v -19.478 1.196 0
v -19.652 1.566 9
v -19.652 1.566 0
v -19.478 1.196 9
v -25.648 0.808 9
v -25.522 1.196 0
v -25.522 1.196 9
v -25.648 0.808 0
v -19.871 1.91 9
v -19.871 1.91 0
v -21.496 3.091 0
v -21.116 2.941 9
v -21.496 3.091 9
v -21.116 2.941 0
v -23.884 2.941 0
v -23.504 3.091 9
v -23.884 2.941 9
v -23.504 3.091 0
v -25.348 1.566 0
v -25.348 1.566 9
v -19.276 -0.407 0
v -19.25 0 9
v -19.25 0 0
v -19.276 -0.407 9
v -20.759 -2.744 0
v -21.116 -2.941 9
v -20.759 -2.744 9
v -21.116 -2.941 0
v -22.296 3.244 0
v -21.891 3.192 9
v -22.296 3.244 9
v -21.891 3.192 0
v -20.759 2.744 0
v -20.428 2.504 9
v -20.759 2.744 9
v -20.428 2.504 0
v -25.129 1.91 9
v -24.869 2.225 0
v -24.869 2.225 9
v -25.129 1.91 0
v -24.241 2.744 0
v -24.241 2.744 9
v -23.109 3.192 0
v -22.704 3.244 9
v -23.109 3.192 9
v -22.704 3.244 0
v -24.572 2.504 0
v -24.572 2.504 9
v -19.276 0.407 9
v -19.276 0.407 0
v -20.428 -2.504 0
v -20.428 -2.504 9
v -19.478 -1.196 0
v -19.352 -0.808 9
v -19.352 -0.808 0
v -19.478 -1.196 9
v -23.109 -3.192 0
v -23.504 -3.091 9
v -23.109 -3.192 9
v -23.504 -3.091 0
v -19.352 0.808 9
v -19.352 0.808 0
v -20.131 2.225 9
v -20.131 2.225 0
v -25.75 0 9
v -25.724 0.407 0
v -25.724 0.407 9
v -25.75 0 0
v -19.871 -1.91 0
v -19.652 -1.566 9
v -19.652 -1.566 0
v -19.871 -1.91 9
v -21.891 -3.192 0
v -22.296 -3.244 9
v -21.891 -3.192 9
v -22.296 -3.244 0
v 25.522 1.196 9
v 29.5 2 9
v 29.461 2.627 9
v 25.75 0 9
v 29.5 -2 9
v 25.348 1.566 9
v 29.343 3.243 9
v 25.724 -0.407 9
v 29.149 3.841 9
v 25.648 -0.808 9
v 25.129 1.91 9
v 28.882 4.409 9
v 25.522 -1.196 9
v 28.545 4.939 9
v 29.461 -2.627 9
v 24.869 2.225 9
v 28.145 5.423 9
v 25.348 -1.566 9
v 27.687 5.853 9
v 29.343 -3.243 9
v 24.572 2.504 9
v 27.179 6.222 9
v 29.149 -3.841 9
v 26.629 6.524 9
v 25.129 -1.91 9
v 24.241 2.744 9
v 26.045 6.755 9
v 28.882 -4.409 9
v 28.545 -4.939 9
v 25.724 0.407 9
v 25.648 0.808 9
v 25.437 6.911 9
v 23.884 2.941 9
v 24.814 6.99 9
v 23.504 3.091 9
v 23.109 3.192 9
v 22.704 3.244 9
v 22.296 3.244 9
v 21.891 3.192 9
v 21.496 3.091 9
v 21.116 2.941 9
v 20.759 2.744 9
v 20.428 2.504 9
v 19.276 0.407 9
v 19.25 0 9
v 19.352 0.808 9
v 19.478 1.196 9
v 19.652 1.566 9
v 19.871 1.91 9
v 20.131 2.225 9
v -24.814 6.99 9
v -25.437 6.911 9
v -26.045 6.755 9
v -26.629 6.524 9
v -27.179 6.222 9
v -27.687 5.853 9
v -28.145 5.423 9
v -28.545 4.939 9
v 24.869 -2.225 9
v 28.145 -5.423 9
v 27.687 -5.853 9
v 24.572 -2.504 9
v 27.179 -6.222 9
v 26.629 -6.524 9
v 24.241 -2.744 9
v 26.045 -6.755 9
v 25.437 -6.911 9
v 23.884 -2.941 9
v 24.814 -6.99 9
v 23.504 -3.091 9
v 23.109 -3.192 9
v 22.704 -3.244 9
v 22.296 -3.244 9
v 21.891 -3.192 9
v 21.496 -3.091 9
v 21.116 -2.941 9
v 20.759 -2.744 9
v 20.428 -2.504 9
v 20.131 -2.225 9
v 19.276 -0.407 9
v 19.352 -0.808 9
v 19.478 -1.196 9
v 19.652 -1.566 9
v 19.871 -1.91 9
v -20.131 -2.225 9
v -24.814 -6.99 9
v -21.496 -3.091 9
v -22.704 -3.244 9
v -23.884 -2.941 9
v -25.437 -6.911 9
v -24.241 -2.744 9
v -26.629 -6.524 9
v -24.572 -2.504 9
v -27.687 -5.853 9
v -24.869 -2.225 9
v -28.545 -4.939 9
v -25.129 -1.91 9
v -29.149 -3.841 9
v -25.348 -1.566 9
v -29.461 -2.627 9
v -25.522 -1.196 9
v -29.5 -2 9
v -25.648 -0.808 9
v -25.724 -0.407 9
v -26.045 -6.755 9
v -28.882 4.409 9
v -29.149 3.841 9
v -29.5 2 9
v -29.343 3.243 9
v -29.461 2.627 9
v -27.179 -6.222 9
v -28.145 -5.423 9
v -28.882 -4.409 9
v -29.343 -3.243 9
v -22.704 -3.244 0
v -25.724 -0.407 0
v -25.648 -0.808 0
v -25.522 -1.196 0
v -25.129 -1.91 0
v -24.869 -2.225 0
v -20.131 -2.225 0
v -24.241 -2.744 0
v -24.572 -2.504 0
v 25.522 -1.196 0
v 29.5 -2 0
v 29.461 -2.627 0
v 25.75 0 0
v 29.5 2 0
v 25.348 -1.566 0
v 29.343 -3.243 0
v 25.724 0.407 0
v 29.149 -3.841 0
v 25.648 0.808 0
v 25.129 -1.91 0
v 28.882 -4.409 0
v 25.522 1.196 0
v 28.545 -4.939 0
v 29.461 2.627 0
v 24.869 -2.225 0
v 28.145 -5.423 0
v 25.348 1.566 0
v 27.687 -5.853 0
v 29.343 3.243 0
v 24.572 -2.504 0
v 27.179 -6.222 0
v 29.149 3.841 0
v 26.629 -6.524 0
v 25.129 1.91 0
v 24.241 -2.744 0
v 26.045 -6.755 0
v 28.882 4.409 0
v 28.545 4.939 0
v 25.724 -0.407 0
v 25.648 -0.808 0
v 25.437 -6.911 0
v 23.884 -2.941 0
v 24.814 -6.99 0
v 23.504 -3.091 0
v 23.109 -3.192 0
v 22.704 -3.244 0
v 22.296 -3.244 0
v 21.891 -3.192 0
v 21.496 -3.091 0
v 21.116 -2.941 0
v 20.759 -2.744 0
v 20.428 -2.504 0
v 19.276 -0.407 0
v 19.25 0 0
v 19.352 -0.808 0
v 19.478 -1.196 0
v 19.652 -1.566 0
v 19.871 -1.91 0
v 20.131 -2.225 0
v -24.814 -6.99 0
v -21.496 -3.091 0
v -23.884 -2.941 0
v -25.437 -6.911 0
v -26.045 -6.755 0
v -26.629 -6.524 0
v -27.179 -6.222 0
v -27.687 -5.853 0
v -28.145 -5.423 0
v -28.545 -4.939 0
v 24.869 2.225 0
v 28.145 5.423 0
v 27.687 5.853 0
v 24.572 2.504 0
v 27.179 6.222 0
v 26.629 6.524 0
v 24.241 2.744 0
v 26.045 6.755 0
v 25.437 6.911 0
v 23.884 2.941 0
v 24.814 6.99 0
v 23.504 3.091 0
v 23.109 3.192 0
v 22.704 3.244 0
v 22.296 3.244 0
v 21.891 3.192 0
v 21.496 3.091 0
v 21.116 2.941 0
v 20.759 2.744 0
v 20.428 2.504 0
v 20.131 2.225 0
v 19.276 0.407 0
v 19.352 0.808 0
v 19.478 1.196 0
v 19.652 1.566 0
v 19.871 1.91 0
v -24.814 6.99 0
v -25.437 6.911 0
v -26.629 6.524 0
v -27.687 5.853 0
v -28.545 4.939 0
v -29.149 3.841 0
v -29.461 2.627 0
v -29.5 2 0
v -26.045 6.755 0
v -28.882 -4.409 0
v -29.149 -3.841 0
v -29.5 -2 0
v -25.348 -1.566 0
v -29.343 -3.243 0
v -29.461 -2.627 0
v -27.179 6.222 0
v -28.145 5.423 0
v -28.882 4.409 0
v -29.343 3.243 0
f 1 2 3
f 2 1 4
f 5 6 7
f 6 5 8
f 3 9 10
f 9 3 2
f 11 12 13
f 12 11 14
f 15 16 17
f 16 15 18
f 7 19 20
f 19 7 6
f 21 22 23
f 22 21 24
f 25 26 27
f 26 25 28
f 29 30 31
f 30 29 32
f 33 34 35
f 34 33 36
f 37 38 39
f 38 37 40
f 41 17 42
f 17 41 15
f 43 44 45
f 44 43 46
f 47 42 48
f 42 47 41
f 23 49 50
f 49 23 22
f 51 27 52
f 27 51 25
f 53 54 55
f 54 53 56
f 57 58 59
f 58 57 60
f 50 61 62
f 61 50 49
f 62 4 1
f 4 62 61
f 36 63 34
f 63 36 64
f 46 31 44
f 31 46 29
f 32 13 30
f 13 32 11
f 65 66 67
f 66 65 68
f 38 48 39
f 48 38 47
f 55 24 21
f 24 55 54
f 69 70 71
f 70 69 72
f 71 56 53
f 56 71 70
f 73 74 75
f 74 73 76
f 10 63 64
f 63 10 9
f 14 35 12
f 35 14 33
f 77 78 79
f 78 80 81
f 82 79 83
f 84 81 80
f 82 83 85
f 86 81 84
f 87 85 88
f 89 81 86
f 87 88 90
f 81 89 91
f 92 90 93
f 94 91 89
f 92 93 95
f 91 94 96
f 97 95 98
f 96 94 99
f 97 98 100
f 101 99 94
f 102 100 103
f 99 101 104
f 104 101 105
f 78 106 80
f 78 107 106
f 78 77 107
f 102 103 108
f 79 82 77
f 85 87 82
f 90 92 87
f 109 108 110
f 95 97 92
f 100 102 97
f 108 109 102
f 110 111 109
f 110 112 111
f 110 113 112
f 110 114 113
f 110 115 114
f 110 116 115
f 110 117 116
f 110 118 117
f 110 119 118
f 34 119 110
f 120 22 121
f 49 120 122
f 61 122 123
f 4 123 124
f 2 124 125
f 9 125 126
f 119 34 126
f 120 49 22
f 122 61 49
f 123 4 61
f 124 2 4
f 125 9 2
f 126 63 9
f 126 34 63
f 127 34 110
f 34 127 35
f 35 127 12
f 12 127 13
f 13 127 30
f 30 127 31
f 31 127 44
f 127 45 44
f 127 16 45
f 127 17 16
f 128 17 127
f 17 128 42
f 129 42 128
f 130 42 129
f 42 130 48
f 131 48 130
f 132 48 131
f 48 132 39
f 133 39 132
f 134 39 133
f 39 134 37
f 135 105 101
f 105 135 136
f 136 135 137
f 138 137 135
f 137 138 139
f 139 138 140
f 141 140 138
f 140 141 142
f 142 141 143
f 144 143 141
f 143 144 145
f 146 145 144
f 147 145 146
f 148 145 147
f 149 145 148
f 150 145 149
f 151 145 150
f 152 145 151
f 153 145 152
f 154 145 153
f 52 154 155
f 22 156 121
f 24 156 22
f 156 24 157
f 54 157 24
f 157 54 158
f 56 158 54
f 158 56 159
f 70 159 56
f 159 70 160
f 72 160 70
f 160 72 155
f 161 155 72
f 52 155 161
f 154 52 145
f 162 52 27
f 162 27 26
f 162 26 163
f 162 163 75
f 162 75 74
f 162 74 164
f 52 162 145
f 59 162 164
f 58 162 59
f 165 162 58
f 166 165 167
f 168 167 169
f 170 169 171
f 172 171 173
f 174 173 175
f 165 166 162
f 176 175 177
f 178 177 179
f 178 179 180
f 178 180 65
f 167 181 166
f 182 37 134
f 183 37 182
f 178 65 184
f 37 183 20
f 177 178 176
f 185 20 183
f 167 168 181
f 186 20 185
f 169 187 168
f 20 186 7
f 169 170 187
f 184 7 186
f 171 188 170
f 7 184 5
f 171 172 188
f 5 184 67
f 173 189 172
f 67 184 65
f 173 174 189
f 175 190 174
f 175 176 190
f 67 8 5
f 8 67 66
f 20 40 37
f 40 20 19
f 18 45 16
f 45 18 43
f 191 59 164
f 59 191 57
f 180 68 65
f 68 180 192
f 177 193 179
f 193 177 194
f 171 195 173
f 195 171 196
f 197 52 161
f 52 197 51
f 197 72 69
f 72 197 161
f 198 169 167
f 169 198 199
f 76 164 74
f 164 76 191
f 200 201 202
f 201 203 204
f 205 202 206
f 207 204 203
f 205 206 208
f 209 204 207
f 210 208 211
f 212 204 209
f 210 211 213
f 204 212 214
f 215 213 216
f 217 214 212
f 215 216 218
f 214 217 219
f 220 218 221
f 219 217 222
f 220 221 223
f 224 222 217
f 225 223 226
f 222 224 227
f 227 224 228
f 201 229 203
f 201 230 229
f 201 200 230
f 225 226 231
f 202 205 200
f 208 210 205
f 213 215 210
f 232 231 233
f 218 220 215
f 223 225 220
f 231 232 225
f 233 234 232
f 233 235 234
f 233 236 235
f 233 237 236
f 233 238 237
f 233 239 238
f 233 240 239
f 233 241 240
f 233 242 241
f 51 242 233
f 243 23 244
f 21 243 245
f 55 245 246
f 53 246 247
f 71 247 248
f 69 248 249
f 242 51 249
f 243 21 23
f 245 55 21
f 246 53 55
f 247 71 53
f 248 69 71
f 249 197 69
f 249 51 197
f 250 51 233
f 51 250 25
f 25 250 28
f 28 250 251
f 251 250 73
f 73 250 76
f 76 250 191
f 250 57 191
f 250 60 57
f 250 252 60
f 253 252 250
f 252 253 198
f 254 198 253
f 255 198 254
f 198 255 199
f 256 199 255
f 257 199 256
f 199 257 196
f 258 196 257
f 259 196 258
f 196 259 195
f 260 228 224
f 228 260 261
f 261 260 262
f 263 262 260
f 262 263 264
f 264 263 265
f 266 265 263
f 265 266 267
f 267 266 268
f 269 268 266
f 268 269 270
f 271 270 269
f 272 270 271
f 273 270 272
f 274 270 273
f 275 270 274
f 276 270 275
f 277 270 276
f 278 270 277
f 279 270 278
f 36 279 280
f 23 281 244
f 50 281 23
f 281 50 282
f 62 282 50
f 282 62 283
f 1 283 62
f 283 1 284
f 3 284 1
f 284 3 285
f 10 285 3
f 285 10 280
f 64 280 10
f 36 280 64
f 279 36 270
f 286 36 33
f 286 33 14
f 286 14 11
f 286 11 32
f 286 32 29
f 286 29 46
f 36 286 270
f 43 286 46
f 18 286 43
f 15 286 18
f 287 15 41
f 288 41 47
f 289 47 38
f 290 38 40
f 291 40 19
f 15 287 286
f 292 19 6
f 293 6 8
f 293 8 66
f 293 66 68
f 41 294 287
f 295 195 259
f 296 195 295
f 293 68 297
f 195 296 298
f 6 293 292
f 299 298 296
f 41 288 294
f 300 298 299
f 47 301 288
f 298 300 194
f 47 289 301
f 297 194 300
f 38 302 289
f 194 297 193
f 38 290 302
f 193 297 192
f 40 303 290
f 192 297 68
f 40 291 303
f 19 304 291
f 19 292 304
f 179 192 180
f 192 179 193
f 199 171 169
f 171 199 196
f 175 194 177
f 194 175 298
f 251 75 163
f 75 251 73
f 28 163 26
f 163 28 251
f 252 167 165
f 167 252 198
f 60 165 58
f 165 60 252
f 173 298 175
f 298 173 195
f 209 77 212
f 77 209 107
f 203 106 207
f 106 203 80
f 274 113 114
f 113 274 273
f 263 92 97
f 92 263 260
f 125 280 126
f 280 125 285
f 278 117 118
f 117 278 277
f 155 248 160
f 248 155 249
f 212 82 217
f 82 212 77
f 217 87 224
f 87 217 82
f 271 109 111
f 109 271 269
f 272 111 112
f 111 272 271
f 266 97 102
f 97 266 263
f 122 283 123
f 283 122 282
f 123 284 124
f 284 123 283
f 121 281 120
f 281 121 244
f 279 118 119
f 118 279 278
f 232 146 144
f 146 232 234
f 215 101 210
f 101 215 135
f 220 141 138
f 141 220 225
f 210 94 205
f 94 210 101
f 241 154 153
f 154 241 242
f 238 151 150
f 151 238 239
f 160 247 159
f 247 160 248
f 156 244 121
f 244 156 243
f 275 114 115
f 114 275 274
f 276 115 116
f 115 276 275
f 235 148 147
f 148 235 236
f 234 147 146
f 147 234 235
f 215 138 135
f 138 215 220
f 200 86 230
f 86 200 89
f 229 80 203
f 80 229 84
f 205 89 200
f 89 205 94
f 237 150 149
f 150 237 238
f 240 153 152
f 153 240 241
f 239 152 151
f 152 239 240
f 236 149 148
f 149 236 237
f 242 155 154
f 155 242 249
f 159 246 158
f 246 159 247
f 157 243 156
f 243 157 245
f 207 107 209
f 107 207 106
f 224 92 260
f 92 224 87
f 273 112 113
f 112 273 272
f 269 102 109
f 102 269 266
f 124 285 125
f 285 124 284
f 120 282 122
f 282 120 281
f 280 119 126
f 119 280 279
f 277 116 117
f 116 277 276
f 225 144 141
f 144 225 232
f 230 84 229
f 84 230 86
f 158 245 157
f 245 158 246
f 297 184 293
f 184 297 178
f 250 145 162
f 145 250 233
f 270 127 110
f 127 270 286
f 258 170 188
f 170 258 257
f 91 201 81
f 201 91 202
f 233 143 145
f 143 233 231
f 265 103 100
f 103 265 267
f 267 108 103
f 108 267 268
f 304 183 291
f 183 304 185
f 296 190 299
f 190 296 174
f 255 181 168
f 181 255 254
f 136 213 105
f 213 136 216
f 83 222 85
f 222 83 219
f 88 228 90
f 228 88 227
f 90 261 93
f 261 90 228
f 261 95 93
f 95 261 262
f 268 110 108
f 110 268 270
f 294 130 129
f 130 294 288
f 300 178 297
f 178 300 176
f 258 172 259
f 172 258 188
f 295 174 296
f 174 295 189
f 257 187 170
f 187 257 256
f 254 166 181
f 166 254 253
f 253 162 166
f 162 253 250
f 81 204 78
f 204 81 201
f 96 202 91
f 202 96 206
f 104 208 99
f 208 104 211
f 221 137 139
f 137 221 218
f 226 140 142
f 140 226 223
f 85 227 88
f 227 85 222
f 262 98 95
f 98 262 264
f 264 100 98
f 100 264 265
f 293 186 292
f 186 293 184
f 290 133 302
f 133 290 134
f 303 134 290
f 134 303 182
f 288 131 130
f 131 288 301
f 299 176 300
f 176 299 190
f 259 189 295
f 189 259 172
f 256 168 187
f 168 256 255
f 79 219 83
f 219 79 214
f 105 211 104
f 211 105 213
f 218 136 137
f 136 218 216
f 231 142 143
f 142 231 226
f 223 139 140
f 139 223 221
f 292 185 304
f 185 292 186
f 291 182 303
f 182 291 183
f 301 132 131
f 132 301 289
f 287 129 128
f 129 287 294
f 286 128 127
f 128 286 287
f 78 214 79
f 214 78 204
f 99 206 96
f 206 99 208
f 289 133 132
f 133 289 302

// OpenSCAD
$fn = 50;


difference() {
	union() {
		hull() {
			translate(v = [-24.5000000000, 2.0000000000, 0]) {
				cylinder(h = 9, r = 5);
			}
			translate(v = [24.5000000000, 2.0000000000, 0]) {
				cylinder(h = 9, r = 5);
			}
			translate(v = [-24.5000000000, -2.0000000000, 0]) {
				cylinder(h = 9, r = 5);
			}
			translate(v = [24.5000000000, -2.0000000000, 0]) {
				cylinder(h = 9, r = 5);
			}
		}
	}
	union() {
		translate(v = [-22.5000000000, 0.0000000000, -100.0000000000]) {
			cylinder(h = 200, r = 3.2500000000);
		}
		translate(v = [-22.5000000000, 0.0000000000, -100.0000000000]) {
			cylinder(h = 200, r = 3.2500000000);
		}
		translate(v = [22.5000000000, 0.0000000000, -100.0000000000]) {
			cylinder(h = 200, r = 3.2500000000);
		}
		translate(v = [22.5000000000, 0.0000000000, -100.0000000000]) {
			cylinder(h = 200, r = 3.2500000000);
		}
	}
}
